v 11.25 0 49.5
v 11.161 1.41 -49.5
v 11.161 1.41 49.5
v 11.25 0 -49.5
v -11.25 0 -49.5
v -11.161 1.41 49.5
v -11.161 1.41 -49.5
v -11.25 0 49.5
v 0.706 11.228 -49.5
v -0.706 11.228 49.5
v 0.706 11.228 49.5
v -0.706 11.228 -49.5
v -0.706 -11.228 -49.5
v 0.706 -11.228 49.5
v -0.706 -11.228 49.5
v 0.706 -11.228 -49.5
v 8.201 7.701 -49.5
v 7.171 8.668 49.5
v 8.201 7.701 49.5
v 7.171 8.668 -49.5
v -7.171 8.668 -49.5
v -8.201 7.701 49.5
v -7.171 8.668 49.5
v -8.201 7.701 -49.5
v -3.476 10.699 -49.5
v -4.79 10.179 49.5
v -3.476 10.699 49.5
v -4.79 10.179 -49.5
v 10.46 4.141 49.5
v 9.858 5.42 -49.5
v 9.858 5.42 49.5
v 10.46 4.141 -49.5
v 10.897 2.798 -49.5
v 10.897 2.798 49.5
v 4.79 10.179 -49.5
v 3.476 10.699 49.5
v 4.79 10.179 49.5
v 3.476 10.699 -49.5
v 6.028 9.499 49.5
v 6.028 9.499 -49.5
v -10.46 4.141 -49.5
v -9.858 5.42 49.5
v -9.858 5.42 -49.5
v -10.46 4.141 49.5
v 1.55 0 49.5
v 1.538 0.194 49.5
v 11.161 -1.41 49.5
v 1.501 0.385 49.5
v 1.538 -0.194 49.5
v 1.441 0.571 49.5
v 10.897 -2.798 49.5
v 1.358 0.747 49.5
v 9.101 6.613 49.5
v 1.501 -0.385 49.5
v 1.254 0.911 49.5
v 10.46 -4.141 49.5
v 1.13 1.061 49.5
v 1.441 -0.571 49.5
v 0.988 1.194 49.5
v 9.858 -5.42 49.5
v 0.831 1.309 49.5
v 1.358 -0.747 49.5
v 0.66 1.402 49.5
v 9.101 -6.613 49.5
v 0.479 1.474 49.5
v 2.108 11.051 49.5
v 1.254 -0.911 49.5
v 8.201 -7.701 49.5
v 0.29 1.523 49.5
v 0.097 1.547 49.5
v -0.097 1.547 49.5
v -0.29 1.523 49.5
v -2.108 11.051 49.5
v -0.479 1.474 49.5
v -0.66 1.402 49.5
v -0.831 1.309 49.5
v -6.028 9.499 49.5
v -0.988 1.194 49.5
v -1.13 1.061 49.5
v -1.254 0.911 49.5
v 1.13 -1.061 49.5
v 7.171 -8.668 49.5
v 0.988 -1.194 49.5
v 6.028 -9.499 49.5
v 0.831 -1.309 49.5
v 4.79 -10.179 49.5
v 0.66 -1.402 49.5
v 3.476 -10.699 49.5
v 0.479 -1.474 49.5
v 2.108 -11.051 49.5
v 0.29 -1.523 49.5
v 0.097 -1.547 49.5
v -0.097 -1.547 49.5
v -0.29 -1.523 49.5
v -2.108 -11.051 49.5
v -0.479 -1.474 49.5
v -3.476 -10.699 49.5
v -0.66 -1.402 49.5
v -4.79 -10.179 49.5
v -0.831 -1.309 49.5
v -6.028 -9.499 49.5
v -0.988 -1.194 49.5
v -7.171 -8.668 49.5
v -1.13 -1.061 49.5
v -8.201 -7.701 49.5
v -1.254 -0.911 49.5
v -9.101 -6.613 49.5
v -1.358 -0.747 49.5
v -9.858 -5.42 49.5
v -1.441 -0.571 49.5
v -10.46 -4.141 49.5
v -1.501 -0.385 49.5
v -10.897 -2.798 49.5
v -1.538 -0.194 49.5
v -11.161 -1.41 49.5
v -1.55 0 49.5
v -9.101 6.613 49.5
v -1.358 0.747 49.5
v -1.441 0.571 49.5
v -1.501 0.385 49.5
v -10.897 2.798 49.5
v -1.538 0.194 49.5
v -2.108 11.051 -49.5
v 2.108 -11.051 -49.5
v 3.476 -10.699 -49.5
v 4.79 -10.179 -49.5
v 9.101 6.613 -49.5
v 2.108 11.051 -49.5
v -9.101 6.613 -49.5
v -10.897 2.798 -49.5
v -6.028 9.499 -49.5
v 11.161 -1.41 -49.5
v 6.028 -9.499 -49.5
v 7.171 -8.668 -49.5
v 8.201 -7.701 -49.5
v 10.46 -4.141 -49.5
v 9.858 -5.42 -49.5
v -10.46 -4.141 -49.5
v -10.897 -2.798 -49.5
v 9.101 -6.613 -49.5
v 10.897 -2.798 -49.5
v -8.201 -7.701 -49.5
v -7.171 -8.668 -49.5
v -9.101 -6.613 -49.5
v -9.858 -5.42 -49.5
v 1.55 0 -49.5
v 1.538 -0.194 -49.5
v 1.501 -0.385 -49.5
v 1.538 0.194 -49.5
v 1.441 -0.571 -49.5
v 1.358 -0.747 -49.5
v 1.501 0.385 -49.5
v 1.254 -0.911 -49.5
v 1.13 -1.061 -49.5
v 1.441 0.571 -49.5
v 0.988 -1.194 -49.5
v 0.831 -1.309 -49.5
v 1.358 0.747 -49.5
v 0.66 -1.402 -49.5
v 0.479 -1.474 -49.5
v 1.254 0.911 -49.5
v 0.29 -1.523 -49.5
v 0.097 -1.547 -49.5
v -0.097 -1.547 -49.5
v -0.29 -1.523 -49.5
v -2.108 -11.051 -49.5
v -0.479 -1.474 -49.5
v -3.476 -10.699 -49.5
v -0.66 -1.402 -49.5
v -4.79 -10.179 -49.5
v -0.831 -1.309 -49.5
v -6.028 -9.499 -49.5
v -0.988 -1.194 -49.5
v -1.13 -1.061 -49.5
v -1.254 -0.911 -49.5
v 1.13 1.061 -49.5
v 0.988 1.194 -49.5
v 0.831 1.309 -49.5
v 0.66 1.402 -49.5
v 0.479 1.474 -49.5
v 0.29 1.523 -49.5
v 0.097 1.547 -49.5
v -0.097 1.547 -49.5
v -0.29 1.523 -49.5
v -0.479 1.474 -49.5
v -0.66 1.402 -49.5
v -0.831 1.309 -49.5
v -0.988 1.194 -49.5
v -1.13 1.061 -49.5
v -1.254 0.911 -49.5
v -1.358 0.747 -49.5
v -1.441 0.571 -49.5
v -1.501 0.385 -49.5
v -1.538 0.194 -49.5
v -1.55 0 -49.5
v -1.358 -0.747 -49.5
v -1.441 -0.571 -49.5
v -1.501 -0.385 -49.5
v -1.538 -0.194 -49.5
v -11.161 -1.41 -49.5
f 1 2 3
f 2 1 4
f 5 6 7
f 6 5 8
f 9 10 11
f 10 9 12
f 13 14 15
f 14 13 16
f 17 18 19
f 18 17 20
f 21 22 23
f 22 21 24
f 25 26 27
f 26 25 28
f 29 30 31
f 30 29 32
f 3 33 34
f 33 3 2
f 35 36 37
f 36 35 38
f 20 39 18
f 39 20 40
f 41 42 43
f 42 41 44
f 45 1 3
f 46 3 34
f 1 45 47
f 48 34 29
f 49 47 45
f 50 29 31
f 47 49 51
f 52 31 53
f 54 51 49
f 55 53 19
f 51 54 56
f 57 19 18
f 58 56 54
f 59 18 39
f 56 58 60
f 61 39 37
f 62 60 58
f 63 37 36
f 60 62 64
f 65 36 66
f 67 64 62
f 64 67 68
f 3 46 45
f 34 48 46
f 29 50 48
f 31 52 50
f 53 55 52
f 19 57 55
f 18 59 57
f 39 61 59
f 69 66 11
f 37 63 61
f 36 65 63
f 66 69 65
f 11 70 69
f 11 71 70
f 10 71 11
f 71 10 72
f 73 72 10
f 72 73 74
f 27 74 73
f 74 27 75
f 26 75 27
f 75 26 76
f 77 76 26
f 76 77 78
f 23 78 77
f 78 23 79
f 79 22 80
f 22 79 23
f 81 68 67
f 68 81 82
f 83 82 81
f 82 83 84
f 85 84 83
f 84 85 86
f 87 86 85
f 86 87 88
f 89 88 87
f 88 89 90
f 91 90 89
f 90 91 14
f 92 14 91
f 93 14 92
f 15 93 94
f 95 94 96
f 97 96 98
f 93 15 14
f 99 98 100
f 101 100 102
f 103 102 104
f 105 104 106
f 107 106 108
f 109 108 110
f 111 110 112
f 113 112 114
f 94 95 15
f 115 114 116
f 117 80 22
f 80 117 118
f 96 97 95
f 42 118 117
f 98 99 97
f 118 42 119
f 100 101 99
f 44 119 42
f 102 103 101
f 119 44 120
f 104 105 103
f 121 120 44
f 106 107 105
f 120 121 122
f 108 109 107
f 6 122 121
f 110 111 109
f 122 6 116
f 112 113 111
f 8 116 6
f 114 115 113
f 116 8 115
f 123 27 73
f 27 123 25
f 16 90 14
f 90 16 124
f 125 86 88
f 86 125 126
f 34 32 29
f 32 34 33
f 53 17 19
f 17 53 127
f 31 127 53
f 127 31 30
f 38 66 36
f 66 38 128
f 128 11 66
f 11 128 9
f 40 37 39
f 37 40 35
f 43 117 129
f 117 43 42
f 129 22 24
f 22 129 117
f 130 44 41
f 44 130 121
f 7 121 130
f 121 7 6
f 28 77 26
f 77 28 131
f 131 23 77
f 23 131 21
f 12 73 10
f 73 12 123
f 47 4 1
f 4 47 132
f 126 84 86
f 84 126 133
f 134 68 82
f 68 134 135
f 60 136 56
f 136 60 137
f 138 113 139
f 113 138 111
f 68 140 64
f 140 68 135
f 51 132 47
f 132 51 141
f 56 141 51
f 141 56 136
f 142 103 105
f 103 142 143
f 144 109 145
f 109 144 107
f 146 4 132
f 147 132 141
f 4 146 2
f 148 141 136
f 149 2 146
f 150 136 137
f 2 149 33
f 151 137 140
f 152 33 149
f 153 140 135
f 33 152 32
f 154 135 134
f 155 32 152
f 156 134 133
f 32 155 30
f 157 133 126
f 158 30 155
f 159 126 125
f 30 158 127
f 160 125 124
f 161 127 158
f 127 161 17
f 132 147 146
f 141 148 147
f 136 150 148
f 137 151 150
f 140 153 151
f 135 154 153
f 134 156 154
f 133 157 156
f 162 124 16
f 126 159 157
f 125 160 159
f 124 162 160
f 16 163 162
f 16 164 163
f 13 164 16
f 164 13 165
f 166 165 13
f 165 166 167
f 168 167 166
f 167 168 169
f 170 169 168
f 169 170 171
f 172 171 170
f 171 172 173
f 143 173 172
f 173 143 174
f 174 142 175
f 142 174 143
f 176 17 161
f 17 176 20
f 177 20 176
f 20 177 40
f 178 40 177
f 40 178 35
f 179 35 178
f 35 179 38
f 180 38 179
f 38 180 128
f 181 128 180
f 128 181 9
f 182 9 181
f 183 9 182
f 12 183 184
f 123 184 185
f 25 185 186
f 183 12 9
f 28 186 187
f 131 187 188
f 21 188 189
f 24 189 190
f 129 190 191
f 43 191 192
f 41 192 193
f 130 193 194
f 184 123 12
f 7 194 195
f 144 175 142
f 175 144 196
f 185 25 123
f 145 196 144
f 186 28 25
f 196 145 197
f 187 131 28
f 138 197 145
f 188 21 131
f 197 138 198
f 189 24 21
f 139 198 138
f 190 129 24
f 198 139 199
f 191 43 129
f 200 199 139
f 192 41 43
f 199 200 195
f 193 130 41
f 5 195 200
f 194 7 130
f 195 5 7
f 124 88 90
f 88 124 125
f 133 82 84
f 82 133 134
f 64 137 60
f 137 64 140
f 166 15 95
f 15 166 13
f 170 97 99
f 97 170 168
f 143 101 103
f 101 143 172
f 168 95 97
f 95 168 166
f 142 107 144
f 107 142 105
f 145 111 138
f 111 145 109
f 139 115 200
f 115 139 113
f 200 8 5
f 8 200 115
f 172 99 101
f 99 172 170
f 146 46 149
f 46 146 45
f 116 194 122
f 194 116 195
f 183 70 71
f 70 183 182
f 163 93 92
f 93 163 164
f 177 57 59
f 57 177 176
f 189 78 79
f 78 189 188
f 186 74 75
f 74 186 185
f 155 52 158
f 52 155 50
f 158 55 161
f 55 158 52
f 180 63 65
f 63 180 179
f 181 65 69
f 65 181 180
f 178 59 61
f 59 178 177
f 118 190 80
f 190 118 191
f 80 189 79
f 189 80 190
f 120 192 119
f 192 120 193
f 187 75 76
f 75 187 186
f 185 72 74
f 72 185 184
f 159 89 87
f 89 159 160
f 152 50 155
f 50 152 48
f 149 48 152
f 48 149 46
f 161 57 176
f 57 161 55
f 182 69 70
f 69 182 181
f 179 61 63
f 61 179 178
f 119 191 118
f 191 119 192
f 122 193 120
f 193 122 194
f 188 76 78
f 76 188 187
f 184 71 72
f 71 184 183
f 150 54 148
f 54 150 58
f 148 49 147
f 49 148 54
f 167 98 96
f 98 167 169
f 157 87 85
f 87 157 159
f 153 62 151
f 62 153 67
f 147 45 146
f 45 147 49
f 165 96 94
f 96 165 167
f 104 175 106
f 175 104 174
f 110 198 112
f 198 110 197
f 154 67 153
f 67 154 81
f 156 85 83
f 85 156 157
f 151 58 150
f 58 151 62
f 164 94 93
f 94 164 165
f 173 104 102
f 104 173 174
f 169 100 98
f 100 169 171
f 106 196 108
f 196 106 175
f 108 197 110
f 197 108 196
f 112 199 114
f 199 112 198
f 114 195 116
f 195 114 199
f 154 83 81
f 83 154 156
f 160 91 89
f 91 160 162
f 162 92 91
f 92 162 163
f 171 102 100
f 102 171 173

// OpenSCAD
$fn = 50;


difference() {
	union() {
		translate(v = [0, 0, -49.5000000000]) {
			cylinder(h = 99, r = 11.2500000000);
		}
	}
	union() {
		translate(v = [0, 0, -100.0000000000]) {
			cylinder(h = 200, r = 1.5500000000);
		}
	}
}
